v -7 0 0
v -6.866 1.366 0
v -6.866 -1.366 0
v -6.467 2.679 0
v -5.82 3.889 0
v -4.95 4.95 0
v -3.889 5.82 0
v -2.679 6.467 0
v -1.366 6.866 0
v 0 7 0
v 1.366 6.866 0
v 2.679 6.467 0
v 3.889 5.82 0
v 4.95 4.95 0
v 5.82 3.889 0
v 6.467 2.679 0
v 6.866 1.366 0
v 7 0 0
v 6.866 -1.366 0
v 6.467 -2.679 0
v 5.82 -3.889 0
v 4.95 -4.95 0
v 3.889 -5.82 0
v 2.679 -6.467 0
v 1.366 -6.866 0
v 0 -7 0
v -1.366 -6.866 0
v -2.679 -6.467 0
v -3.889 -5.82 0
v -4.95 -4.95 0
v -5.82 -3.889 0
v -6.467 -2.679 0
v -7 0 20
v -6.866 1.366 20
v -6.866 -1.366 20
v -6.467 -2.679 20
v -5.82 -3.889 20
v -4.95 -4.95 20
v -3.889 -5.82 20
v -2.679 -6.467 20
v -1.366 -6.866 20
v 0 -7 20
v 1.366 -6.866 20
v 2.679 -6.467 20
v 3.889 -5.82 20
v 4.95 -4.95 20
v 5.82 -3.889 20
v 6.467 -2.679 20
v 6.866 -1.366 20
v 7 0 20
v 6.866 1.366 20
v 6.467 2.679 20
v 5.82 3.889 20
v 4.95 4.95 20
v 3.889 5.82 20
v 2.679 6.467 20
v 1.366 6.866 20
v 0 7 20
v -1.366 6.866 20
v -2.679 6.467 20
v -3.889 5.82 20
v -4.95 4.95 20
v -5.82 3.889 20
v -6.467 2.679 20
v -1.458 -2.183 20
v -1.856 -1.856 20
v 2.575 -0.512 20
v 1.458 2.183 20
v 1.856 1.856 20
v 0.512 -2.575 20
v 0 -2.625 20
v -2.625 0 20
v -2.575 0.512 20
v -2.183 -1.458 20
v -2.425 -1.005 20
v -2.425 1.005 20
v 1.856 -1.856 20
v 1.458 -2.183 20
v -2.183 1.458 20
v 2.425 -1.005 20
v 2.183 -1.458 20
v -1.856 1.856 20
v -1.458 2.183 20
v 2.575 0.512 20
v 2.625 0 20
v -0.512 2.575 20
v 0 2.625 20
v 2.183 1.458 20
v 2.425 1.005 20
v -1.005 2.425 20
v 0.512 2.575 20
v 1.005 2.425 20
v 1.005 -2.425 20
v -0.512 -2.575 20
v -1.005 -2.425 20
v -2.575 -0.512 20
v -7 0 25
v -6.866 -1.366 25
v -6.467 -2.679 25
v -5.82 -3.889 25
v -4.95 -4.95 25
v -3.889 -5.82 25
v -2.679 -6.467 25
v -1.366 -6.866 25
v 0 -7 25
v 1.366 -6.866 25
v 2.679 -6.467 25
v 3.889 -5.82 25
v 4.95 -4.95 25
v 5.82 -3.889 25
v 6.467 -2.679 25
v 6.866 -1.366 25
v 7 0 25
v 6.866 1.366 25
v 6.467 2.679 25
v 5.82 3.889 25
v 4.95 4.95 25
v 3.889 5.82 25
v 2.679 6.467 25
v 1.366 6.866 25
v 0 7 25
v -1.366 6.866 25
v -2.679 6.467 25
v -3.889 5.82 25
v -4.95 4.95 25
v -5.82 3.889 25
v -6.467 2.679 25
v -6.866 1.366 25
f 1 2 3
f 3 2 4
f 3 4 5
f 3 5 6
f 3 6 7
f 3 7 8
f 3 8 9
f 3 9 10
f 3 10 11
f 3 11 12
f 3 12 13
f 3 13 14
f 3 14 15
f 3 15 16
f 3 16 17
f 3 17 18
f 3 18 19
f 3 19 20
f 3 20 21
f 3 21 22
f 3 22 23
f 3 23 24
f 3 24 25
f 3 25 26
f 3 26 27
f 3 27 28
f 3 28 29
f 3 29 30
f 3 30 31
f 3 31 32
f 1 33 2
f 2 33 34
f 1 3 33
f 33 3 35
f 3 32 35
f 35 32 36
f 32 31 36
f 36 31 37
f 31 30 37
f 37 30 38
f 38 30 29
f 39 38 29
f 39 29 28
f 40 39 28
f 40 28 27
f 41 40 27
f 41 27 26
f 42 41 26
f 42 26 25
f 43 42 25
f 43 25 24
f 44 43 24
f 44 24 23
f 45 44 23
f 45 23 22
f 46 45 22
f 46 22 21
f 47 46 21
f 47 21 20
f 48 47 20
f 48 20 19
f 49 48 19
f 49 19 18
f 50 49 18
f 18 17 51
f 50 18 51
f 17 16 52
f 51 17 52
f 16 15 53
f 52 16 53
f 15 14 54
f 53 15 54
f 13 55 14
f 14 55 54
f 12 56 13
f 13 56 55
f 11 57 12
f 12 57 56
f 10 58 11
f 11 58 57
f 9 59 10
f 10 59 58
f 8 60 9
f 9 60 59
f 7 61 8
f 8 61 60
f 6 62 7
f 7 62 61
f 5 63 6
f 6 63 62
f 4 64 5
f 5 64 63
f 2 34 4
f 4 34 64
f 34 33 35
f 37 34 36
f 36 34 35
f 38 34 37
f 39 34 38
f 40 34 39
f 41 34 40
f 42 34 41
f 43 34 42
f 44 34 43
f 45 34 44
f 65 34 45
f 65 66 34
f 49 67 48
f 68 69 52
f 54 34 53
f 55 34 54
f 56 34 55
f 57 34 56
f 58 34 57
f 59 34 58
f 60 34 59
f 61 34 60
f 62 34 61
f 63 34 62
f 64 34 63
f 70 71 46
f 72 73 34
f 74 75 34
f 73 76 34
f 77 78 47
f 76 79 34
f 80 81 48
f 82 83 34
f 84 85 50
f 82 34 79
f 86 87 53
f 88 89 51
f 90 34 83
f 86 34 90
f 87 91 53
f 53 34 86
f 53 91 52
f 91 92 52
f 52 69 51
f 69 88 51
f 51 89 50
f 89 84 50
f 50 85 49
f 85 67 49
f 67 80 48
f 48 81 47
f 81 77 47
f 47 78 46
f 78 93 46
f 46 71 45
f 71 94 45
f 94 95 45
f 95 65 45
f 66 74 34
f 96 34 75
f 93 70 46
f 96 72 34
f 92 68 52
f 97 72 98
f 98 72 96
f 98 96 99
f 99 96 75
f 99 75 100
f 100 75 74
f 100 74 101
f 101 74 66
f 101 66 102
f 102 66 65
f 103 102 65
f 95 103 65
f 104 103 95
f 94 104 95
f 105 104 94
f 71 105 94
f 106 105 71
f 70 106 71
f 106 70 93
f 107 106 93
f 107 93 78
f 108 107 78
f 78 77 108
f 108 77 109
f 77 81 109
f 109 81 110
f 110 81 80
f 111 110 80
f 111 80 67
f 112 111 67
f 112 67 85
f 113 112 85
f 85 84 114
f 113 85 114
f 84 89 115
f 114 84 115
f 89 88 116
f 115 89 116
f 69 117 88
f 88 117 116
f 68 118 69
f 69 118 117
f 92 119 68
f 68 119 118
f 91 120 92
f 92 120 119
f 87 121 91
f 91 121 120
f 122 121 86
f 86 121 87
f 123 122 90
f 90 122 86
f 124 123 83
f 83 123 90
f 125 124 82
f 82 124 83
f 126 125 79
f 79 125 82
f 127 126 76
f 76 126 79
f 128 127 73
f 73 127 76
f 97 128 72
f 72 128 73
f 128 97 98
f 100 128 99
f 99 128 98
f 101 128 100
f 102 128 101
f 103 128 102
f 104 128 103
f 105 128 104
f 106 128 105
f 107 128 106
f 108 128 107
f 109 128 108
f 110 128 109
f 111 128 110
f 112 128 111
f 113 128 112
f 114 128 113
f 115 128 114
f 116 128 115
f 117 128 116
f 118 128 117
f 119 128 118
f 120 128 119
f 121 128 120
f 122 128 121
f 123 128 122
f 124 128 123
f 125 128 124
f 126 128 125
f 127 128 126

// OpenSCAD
cylinder( r=7, h=20, $fn=32 );

translate( [0,0,17] )
cylinder( r1=0, r2=7, h=8, $fn=32 );
